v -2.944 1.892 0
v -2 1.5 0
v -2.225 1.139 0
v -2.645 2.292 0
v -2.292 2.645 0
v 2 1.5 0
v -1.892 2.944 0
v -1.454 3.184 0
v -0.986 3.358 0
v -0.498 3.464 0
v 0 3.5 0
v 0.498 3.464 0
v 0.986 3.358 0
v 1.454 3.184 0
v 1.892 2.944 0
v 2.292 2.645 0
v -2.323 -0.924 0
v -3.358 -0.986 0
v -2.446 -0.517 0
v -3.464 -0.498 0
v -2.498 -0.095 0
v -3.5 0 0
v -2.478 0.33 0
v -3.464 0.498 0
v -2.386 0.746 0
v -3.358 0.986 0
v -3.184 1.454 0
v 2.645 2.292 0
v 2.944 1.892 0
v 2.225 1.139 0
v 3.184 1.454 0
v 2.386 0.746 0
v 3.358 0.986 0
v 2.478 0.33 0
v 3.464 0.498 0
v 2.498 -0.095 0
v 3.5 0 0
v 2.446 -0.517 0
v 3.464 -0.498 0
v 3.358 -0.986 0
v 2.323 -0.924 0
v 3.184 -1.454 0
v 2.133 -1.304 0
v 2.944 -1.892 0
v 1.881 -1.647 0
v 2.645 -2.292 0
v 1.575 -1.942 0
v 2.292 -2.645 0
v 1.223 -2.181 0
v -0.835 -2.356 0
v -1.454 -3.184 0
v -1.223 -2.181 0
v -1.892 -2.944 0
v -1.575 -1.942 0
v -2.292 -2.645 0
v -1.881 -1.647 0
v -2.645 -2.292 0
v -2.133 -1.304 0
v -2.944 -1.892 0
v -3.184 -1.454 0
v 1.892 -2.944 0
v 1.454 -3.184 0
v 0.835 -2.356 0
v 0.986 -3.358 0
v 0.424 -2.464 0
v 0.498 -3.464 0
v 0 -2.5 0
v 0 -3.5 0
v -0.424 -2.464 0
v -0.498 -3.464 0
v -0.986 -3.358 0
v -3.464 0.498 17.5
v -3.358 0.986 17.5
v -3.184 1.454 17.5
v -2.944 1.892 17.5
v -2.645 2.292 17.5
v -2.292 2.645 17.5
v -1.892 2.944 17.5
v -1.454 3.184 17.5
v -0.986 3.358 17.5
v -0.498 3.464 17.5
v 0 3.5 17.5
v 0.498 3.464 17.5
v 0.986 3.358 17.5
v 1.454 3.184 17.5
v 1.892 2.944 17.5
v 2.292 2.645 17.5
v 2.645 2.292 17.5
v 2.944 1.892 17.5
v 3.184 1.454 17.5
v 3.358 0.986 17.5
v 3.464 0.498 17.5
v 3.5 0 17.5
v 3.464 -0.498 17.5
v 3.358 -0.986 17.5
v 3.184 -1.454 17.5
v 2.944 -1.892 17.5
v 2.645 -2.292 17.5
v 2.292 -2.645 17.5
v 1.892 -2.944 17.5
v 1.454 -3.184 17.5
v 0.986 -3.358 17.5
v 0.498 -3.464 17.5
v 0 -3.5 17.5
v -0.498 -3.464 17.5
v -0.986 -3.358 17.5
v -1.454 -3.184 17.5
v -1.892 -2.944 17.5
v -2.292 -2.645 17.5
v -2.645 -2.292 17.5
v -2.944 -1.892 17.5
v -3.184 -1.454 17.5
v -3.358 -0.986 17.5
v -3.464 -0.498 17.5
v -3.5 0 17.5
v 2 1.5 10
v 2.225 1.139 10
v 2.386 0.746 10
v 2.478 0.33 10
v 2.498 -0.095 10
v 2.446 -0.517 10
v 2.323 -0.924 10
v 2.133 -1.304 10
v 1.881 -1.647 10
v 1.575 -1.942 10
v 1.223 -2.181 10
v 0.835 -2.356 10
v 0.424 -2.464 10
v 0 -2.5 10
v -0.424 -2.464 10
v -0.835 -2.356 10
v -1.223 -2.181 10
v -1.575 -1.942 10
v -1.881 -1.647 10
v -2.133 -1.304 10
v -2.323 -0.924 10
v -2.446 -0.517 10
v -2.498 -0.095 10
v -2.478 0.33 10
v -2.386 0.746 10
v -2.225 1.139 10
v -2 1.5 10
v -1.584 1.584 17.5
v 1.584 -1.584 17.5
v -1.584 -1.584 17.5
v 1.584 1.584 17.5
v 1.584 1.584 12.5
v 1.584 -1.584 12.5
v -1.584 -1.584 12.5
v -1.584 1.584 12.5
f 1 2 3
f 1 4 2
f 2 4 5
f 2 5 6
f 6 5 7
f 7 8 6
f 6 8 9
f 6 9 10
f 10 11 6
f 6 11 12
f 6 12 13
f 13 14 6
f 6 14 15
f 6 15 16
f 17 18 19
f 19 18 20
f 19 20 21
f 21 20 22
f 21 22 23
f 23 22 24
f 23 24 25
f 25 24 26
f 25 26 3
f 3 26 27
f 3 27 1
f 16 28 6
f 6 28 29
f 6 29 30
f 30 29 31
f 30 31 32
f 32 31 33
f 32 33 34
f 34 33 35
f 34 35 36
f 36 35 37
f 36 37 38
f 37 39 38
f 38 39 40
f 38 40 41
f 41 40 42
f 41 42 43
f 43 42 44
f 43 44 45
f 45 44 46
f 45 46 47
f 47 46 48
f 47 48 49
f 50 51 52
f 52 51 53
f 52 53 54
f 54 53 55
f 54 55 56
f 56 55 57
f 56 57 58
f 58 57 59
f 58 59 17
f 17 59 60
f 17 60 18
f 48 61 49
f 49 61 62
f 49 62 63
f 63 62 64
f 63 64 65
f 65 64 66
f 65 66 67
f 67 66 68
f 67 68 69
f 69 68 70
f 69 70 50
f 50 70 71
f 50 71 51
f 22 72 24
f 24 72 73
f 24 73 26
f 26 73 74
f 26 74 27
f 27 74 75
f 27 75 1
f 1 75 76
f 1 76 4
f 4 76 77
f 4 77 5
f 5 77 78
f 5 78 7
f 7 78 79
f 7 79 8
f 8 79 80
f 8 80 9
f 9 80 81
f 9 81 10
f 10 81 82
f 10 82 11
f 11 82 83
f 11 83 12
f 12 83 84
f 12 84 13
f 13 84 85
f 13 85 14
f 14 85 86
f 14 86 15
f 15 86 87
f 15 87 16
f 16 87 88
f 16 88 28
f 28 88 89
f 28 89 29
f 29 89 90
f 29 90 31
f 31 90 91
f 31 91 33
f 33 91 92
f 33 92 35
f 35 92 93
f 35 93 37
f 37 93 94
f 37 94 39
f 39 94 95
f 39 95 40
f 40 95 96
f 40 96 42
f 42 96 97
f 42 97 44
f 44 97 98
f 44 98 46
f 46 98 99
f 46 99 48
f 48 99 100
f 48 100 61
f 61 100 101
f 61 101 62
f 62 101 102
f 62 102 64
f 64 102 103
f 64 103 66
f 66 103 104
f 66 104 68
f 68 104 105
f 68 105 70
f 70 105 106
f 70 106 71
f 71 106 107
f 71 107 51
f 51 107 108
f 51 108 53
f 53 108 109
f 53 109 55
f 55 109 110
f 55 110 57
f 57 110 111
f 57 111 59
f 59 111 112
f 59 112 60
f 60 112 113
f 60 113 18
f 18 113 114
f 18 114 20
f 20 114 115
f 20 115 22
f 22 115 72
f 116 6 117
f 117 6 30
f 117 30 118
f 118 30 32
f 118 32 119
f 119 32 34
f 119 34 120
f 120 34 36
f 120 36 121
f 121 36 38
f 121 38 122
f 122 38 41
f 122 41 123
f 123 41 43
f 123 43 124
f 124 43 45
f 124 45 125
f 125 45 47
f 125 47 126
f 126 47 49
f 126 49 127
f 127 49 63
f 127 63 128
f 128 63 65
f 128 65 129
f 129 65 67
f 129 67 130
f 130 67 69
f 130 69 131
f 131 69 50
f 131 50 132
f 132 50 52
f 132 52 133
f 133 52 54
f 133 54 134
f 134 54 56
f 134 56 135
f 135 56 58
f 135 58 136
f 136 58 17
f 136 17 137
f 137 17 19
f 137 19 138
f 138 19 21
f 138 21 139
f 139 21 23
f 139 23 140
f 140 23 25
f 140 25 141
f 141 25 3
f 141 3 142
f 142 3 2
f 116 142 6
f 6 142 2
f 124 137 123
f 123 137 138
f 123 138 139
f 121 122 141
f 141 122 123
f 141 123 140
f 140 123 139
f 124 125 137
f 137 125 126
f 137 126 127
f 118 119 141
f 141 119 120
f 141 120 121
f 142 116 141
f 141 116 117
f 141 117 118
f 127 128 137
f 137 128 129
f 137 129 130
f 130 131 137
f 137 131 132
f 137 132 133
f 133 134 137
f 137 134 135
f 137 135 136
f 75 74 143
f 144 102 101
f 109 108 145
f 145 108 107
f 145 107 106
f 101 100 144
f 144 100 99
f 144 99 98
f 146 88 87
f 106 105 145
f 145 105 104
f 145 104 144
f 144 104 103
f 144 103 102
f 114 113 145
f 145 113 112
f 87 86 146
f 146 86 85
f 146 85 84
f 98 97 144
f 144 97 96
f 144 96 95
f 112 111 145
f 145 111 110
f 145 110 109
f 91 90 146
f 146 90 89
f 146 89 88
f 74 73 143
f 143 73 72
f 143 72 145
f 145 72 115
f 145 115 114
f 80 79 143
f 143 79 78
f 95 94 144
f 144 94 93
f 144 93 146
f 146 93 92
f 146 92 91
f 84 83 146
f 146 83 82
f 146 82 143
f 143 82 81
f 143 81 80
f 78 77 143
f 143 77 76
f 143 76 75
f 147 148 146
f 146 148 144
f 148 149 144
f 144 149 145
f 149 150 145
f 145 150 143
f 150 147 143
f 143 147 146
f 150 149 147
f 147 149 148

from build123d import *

# Parameters (mm, degrees)
BOSS_EXTRUDE1_DEPTH = 10
SKETCH2_R           = 3.5
BOSS_EXTRUDE2_DEPTH = 7.5
SKETCH3_W           = 3.16759605
SKETCH3_H           = 3.16756905
CUT_EXTRUDE1_DEPTH  = 5


with BuildPart() as part:
    # Sketch1 → Boss-Extrude1 (new body)
    with BuildSketch(Plane.XY):
        with BuildLine():
            ThreePointArc((-2.449489743, 2.5), (0, -3.5), (2.449489743, 2.5))
            ThreePointArc((2.449489743, 2.5), (0, 3.5), (-2.449489743, 2.5))
        make_face()
        with BuildLine():
            Line((-2, 1.5), (2, 1.5))
            ThreePointArc((2, 1.5), (0, -2.5), (-2, 1.5))
        make_face(mode=Mode.SUBTRACT)
    extrude(amount=BOSS_EXTRUDE1_DEPTH)

    # Sketch2 → Boss-Extrude2 (add)
    with BuildSketch(Plane.XY.offset(10)):
        Circle(SKETCH2_R)
    extrude(amount=BOSS_EXTRUDE2_DEPTH)

    # Sketch3 → Cut-Extrude1 (cut)
    with BuildSketch(Plane.XY.offset(17.5)):
        Rectangle(SKETCH3_W, SKETCH3_H)
    extrude(amount=-CUT_EXTRUDE1_DEPTH, mode=Mode.SUBTRACT)


solid = part.part
